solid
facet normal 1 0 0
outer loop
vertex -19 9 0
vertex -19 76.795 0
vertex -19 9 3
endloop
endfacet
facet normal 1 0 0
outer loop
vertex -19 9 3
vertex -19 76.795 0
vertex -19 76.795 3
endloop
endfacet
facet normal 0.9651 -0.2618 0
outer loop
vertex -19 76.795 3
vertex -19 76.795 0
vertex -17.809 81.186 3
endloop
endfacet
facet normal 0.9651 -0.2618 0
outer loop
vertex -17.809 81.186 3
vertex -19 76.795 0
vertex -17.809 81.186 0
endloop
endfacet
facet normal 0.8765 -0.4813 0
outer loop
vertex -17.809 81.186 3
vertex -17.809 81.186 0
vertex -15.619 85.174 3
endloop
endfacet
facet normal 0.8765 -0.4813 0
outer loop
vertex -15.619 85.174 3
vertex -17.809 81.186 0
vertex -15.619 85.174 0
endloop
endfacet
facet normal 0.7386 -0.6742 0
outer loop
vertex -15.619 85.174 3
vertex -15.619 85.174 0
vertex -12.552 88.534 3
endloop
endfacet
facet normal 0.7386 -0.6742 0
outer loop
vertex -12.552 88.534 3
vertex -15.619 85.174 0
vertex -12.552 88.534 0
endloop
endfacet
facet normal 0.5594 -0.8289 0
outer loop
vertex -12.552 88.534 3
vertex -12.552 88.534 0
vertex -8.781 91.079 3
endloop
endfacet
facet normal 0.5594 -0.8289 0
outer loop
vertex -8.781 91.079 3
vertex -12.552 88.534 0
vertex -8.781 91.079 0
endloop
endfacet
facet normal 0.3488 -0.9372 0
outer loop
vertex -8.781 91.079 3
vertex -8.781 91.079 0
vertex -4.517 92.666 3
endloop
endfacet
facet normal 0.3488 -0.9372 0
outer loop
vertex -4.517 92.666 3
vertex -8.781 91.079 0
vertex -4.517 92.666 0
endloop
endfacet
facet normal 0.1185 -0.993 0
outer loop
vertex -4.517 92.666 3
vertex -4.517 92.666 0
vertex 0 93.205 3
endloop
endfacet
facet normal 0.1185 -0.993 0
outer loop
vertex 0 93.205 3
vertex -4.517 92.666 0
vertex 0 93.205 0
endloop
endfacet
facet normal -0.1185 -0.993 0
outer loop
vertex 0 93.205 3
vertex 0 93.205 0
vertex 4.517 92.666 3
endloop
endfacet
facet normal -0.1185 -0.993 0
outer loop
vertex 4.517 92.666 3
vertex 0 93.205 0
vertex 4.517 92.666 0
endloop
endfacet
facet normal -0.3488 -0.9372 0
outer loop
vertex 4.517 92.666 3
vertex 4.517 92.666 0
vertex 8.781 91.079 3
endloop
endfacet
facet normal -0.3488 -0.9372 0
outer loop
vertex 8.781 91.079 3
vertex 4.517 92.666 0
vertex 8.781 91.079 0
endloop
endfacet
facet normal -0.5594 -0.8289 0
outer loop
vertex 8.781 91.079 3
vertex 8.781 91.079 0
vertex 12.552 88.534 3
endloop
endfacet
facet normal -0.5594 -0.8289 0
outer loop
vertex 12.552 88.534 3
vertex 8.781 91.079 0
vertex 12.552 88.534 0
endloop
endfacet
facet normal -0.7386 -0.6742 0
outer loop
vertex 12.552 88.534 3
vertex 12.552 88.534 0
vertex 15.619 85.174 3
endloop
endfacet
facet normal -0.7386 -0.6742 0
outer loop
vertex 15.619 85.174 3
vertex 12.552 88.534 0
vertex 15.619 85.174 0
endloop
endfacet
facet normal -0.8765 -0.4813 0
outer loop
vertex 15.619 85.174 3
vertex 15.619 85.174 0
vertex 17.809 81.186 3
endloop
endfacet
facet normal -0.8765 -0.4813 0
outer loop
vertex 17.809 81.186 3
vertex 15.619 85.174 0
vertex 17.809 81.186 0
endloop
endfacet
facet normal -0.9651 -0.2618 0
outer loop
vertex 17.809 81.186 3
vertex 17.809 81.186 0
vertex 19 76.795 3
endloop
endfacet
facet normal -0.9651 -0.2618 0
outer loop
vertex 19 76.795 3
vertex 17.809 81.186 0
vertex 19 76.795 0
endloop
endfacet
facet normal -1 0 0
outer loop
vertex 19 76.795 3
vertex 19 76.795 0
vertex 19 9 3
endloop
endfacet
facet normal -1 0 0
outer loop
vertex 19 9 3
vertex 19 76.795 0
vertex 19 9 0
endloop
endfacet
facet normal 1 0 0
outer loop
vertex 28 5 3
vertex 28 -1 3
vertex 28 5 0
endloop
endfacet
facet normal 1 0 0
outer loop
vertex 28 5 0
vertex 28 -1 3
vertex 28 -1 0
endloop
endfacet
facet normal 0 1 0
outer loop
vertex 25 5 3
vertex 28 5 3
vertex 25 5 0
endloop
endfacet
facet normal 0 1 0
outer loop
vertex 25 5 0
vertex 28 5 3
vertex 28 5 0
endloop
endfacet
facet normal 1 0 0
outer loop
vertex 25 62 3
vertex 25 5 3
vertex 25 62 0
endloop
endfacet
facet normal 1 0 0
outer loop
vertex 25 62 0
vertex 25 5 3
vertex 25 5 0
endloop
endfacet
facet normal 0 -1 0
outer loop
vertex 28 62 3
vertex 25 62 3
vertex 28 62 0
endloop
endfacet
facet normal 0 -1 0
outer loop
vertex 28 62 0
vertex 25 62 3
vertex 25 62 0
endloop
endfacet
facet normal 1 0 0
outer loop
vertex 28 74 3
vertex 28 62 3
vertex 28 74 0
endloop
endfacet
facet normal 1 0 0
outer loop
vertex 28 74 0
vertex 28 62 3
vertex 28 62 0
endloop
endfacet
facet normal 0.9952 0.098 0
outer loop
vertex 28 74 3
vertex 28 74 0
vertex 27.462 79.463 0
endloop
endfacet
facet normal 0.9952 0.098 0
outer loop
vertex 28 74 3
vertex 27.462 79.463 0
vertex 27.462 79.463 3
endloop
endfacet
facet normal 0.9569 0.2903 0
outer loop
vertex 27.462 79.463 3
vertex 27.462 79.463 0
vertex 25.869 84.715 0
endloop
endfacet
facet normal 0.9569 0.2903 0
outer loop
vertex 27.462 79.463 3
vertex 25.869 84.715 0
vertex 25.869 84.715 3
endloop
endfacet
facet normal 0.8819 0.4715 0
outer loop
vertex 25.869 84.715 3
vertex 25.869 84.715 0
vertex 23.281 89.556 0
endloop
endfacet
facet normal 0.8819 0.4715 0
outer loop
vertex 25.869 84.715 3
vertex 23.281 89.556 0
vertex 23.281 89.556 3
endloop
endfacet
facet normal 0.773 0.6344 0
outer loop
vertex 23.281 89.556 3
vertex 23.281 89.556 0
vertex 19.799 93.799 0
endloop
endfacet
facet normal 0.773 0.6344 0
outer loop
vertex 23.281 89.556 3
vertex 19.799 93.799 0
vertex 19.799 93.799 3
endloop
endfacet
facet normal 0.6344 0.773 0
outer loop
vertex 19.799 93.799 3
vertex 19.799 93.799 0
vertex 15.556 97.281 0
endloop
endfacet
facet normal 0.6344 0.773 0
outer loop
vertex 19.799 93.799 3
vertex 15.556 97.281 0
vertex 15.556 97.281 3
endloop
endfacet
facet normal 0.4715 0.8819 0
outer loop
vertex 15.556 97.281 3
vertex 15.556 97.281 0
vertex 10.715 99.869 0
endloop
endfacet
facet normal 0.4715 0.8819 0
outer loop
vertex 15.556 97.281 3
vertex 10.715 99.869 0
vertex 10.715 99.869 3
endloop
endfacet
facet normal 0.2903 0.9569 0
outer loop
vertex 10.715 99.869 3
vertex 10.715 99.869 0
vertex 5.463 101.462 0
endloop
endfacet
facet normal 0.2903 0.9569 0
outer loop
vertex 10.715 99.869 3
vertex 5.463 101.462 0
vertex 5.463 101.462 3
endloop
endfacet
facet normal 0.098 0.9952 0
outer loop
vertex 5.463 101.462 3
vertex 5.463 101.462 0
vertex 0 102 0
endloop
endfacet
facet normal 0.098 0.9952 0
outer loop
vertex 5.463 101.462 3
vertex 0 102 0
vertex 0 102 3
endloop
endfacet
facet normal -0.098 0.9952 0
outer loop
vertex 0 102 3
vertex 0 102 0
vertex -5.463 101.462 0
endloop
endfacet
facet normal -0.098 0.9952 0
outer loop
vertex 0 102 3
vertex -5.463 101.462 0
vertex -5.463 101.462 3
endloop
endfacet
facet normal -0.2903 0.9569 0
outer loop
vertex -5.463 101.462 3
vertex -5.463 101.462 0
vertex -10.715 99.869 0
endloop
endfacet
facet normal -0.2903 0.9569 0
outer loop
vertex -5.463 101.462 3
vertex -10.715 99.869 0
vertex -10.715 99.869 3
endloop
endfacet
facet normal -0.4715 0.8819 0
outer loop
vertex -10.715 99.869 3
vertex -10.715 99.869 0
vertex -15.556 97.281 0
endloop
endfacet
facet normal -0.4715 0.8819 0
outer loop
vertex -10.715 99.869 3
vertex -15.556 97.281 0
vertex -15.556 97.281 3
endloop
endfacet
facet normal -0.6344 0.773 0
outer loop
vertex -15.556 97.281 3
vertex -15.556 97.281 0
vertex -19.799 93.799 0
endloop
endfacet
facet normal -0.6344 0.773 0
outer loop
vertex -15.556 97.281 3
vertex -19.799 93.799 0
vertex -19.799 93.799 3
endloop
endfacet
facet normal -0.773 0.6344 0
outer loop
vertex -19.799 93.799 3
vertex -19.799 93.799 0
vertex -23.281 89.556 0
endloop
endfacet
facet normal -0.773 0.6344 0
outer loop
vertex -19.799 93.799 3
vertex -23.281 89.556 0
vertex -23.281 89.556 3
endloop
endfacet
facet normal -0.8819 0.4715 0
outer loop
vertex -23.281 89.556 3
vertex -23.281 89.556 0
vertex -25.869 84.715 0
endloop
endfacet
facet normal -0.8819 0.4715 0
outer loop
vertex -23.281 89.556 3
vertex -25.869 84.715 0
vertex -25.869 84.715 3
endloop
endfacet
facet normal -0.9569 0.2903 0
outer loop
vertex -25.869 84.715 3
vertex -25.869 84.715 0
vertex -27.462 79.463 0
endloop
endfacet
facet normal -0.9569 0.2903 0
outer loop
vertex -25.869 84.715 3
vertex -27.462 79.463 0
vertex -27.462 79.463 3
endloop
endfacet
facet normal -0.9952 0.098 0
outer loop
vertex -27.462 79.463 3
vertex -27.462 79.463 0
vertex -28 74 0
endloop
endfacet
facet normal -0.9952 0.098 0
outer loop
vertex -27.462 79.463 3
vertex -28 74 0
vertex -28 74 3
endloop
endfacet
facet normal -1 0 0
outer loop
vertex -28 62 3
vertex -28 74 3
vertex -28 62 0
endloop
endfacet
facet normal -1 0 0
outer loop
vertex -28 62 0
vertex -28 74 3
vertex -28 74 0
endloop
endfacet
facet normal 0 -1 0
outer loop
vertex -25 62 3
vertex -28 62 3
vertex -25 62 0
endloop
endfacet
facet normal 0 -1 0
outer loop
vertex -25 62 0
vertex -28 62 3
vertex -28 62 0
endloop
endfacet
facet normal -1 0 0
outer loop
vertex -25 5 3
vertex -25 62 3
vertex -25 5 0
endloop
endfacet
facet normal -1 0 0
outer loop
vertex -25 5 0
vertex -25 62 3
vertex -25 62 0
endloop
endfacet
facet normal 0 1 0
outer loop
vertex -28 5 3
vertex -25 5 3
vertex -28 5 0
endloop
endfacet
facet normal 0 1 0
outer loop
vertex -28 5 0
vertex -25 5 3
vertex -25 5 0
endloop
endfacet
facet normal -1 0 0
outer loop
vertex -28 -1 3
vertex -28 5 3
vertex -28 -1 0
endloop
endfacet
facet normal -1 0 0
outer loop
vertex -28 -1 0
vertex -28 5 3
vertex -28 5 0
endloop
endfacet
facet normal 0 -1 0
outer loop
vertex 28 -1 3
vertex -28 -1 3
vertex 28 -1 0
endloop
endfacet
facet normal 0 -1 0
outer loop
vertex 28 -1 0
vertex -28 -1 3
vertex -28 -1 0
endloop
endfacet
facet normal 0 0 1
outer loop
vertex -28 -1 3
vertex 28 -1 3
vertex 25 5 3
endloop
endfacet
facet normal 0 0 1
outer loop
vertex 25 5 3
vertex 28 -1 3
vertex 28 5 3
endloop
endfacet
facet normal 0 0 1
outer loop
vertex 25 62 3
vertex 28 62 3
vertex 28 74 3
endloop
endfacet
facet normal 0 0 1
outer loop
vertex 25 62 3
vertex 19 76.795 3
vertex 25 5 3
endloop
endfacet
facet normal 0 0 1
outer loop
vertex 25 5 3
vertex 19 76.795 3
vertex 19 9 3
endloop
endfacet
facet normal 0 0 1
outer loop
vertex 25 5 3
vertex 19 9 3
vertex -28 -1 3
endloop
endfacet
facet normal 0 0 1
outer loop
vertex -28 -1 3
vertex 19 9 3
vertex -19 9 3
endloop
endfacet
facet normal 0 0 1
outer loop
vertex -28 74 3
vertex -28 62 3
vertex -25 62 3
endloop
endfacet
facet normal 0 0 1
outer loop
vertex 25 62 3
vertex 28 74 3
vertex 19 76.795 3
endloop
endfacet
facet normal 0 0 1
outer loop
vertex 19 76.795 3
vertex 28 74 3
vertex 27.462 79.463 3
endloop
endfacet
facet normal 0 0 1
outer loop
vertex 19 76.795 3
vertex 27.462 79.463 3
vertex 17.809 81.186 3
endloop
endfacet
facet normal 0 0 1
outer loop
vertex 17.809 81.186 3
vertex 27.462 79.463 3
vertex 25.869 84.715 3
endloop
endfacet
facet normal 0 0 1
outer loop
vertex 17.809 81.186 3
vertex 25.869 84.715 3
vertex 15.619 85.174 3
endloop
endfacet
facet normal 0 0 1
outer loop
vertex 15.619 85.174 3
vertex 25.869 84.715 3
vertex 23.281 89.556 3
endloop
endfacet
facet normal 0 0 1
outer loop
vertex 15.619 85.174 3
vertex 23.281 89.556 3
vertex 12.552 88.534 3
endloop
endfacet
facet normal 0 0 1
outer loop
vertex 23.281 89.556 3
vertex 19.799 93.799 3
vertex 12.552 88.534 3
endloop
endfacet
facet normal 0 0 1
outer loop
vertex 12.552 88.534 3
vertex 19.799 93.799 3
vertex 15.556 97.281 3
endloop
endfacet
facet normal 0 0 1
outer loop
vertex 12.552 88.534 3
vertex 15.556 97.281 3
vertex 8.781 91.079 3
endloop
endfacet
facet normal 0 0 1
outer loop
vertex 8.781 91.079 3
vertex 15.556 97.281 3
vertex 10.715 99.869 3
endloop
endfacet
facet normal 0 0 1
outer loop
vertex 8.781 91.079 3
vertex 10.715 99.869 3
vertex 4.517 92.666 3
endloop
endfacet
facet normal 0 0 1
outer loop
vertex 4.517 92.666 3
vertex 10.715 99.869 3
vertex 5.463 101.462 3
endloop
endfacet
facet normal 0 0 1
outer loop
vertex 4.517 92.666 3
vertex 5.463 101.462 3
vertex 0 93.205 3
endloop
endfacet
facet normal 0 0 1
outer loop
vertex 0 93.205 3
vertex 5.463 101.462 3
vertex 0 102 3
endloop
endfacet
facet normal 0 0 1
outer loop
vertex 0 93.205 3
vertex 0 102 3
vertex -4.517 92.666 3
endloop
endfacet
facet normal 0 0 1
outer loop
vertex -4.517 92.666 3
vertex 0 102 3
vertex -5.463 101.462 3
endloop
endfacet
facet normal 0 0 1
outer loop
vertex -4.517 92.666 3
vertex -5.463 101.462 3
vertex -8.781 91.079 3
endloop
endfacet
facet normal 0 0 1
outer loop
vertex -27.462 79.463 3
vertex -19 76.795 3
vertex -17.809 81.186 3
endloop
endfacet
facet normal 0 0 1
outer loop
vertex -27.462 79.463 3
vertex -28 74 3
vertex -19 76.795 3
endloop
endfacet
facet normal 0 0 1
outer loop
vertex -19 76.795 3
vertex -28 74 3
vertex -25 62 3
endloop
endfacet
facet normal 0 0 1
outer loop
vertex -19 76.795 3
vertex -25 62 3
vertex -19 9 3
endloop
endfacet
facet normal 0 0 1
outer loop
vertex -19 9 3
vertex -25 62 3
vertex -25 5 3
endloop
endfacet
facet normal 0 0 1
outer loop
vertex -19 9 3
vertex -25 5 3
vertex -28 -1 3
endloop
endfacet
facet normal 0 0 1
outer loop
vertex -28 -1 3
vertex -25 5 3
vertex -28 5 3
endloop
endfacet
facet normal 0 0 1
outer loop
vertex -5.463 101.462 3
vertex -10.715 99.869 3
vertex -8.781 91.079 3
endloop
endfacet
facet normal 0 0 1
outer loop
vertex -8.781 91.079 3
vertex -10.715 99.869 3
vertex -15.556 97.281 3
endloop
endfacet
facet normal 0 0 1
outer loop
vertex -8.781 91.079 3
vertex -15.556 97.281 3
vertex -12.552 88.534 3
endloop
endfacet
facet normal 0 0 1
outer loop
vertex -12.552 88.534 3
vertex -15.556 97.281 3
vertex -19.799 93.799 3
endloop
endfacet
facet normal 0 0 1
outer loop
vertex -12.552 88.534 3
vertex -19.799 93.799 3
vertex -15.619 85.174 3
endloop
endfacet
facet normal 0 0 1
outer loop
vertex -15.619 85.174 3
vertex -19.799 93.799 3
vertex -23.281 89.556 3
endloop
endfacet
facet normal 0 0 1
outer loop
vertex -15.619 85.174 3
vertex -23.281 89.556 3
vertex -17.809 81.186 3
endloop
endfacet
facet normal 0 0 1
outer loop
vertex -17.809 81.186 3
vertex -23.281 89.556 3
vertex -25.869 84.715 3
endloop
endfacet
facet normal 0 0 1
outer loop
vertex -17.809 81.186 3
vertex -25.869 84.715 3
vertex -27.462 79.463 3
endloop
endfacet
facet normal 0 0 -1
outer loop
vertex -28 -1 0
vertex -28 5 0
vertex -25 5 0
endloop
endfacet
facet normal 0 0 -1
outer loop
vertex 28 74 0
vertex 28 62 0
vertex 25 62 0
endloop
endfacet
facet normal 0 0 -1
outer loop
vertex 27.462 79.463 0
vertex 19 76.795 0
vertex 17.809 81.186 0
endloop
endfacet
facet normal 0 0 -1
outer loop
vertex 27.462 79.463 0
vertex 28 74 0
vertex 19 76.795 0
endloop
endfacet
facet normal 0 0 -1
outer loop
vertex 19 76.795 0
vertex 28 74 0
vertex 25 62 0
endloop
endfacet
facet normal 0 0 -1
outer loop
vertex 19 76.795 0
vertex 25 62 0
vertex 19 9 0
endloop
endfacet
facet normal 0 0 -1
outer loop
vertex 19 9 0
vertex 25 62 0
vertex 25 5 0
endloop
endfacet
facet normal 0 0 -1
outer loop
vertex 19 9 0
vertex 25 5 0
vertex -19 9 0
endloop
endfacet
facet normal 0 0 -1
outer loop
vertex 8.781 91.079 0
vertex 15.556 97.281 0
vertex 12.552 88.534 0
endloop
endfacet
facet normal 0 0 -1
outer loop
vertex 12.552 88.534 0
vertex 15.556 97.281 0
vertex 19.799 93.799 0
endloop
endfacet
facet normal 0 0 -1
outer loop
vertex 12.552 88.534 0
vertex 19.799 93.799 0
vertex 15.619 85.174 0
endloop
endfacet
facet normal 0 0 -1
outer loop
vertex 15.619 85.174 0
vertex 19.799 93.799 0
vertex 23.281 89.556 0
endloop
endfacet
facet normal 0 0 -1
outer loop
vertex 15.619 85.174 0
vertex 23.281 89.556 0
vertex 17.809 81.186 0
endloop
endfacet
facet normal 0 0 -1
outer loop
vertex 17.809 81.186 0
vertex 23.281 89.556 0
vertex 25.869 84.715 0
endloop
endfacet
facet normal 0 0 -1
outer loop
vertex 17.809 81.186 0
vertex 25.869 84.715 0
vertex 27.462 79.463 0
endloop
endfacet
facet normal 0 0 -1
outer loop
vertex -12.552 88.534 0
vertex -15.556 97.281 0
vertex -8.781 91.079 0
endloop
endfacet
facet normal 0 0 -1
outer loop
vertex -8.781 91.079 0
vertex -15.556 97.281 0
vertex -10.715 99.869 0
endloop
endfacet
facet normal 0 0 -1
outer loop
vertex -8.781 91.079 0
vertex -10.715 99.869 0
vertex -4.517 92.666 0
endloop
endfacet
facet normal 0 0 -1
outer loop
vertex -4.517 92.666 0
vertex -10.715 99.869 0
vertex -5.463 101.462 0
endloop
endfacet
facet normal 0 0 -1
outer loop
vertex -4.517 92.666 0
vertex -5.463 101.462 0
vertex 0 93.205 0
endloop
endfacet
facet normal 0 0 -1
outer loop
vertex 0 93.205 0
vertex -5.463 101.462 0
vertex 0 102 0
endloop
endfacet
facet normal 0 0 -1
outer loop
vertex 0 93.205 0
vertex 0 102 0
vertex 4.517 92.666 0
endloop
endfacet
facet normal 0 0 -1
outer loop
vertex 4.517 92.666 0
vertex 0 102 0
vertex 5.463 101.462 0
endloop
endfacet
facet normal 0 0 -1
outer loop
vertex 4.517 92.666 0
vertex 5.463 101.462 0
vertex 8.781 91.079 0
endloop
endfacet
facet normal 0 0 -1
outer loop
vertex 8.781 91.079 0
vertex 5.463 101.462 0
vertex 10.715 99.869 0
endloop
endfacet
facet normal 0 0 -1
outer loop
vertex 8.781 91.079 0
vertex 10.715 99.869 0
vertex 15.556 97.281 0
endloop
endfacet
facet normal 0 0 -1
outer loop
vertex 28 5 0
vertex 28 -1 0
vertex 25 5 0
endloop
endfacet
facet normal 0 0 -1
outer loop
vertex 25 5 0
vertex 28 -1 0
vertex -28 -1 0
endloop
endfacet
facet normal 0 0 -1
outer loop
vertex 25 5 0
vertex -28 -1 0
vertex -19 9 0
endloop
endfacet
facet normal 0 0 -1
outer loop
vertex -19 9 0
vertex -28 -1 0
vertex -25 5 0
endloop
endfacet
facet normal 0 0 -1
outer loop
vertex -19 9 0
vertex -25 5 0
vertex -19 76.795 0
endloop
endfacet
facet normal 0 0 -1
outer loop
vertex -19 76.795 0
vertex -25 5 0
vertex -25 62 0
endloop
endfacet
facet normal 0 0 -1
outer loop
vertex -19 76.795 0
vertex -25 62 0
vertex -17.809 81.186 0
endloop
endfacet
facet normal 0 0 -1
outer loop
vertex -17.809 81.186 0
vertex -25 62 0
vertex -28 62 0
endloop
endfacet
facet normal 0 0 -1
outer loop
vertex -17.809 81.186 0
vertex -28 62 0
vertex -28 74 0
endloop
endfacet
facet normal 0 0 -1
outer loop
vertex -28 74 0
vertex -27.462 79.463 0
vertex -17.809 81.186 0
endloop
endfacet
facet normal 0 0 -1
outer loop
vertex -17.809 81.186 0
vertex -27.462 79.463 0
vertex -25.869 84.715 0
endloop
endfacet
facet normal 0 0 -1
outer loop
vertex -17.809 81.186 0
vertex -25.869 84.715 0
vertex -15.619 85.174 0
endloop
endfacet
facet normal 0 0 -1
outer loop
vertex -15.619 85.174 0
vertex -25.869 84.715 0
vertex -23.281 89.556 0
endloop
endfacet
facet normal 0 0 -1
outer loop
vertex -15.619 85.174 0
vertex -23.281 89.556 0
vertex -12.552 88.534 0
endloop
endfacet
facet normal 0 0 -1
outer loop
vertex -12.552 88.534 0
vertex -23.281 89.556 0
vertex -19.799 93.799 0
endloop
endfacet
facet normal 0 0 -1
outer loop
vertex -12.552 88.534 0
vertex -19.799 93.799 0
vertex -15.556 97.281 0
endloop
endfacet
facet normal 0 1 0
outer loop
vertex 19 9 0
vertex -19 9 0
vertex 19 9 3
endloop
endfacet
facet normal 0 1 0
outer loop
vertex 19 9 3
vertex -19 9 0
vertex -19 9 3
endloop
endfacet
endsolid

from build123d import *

# Parameters (mm, degrees)
BOSS_EXTRUDE1_DEPTH = 3
SKETCH2_W           = 38
SKETCH2_H           = 10
BOSS_EXTRUDE2_DEPTH = 3


with BuildPart() as part:
    # Sketch1 → Boss-Extrude1 (new body)
    with BuildSketch(Plane.XY):
        with BuildLine():
            ThreePointArc((-19, 76.795454546), (-12.552472511, 88.534441856), (0, 93.204545458))
            Line((0, 93.204545458), (0, 102))
            ThreePointArc((0, 102.000000004), (-19.799000732, 93.798979019), (-28, 73.999969292))
            Line((-28, 73.999969292), (-28, 68))
            Line((-28, 68), (-19, 68))
            Line((-19, 68), (-19, 76.795454546))
        make_face()
        with BuildLine():
            Line((0, 102), (0, 93.204545458))
            ThreePointArc((0, 93.204545458), (12.552472511, 88.534441856), (19, 76.795454546))
            Line((19, 76.795454546), (19, 68))
            Line((19, 68), (28, 68))
            Line((28, 68), (28, 73.999969292))
            ThreePointArc((28, 73.999969292), (19.799000732, 93.798979019), (0, 102.000000004))
        make_face()
        Polygon((-19, -1), (-19, 5), (-19, 68), (-28, 68), (-28, 62), (-25, 62), (-25, 5), (-28, 5), (-28, -1), align=None)
        Polygon((19, 68), (19, 5), (19, -1), (28, -1), (28, 5), (25, 5), (25, 62), (28, 62), (28, 68), align=None)
    extrude(amount=BOSS_EXTRUDE1_DEPTH)

    # Sketch2 → Boss-Extrude2 (add)
    with BuildSketch(Plane.XY.offset(3)):
        with Locations((0, 4)):
            Rectangle(SKETCH2_W, SKETCH2_H)
    extrude(amount=-BOSS_EXTRUDE2_DEPTH)


solid = part.part
